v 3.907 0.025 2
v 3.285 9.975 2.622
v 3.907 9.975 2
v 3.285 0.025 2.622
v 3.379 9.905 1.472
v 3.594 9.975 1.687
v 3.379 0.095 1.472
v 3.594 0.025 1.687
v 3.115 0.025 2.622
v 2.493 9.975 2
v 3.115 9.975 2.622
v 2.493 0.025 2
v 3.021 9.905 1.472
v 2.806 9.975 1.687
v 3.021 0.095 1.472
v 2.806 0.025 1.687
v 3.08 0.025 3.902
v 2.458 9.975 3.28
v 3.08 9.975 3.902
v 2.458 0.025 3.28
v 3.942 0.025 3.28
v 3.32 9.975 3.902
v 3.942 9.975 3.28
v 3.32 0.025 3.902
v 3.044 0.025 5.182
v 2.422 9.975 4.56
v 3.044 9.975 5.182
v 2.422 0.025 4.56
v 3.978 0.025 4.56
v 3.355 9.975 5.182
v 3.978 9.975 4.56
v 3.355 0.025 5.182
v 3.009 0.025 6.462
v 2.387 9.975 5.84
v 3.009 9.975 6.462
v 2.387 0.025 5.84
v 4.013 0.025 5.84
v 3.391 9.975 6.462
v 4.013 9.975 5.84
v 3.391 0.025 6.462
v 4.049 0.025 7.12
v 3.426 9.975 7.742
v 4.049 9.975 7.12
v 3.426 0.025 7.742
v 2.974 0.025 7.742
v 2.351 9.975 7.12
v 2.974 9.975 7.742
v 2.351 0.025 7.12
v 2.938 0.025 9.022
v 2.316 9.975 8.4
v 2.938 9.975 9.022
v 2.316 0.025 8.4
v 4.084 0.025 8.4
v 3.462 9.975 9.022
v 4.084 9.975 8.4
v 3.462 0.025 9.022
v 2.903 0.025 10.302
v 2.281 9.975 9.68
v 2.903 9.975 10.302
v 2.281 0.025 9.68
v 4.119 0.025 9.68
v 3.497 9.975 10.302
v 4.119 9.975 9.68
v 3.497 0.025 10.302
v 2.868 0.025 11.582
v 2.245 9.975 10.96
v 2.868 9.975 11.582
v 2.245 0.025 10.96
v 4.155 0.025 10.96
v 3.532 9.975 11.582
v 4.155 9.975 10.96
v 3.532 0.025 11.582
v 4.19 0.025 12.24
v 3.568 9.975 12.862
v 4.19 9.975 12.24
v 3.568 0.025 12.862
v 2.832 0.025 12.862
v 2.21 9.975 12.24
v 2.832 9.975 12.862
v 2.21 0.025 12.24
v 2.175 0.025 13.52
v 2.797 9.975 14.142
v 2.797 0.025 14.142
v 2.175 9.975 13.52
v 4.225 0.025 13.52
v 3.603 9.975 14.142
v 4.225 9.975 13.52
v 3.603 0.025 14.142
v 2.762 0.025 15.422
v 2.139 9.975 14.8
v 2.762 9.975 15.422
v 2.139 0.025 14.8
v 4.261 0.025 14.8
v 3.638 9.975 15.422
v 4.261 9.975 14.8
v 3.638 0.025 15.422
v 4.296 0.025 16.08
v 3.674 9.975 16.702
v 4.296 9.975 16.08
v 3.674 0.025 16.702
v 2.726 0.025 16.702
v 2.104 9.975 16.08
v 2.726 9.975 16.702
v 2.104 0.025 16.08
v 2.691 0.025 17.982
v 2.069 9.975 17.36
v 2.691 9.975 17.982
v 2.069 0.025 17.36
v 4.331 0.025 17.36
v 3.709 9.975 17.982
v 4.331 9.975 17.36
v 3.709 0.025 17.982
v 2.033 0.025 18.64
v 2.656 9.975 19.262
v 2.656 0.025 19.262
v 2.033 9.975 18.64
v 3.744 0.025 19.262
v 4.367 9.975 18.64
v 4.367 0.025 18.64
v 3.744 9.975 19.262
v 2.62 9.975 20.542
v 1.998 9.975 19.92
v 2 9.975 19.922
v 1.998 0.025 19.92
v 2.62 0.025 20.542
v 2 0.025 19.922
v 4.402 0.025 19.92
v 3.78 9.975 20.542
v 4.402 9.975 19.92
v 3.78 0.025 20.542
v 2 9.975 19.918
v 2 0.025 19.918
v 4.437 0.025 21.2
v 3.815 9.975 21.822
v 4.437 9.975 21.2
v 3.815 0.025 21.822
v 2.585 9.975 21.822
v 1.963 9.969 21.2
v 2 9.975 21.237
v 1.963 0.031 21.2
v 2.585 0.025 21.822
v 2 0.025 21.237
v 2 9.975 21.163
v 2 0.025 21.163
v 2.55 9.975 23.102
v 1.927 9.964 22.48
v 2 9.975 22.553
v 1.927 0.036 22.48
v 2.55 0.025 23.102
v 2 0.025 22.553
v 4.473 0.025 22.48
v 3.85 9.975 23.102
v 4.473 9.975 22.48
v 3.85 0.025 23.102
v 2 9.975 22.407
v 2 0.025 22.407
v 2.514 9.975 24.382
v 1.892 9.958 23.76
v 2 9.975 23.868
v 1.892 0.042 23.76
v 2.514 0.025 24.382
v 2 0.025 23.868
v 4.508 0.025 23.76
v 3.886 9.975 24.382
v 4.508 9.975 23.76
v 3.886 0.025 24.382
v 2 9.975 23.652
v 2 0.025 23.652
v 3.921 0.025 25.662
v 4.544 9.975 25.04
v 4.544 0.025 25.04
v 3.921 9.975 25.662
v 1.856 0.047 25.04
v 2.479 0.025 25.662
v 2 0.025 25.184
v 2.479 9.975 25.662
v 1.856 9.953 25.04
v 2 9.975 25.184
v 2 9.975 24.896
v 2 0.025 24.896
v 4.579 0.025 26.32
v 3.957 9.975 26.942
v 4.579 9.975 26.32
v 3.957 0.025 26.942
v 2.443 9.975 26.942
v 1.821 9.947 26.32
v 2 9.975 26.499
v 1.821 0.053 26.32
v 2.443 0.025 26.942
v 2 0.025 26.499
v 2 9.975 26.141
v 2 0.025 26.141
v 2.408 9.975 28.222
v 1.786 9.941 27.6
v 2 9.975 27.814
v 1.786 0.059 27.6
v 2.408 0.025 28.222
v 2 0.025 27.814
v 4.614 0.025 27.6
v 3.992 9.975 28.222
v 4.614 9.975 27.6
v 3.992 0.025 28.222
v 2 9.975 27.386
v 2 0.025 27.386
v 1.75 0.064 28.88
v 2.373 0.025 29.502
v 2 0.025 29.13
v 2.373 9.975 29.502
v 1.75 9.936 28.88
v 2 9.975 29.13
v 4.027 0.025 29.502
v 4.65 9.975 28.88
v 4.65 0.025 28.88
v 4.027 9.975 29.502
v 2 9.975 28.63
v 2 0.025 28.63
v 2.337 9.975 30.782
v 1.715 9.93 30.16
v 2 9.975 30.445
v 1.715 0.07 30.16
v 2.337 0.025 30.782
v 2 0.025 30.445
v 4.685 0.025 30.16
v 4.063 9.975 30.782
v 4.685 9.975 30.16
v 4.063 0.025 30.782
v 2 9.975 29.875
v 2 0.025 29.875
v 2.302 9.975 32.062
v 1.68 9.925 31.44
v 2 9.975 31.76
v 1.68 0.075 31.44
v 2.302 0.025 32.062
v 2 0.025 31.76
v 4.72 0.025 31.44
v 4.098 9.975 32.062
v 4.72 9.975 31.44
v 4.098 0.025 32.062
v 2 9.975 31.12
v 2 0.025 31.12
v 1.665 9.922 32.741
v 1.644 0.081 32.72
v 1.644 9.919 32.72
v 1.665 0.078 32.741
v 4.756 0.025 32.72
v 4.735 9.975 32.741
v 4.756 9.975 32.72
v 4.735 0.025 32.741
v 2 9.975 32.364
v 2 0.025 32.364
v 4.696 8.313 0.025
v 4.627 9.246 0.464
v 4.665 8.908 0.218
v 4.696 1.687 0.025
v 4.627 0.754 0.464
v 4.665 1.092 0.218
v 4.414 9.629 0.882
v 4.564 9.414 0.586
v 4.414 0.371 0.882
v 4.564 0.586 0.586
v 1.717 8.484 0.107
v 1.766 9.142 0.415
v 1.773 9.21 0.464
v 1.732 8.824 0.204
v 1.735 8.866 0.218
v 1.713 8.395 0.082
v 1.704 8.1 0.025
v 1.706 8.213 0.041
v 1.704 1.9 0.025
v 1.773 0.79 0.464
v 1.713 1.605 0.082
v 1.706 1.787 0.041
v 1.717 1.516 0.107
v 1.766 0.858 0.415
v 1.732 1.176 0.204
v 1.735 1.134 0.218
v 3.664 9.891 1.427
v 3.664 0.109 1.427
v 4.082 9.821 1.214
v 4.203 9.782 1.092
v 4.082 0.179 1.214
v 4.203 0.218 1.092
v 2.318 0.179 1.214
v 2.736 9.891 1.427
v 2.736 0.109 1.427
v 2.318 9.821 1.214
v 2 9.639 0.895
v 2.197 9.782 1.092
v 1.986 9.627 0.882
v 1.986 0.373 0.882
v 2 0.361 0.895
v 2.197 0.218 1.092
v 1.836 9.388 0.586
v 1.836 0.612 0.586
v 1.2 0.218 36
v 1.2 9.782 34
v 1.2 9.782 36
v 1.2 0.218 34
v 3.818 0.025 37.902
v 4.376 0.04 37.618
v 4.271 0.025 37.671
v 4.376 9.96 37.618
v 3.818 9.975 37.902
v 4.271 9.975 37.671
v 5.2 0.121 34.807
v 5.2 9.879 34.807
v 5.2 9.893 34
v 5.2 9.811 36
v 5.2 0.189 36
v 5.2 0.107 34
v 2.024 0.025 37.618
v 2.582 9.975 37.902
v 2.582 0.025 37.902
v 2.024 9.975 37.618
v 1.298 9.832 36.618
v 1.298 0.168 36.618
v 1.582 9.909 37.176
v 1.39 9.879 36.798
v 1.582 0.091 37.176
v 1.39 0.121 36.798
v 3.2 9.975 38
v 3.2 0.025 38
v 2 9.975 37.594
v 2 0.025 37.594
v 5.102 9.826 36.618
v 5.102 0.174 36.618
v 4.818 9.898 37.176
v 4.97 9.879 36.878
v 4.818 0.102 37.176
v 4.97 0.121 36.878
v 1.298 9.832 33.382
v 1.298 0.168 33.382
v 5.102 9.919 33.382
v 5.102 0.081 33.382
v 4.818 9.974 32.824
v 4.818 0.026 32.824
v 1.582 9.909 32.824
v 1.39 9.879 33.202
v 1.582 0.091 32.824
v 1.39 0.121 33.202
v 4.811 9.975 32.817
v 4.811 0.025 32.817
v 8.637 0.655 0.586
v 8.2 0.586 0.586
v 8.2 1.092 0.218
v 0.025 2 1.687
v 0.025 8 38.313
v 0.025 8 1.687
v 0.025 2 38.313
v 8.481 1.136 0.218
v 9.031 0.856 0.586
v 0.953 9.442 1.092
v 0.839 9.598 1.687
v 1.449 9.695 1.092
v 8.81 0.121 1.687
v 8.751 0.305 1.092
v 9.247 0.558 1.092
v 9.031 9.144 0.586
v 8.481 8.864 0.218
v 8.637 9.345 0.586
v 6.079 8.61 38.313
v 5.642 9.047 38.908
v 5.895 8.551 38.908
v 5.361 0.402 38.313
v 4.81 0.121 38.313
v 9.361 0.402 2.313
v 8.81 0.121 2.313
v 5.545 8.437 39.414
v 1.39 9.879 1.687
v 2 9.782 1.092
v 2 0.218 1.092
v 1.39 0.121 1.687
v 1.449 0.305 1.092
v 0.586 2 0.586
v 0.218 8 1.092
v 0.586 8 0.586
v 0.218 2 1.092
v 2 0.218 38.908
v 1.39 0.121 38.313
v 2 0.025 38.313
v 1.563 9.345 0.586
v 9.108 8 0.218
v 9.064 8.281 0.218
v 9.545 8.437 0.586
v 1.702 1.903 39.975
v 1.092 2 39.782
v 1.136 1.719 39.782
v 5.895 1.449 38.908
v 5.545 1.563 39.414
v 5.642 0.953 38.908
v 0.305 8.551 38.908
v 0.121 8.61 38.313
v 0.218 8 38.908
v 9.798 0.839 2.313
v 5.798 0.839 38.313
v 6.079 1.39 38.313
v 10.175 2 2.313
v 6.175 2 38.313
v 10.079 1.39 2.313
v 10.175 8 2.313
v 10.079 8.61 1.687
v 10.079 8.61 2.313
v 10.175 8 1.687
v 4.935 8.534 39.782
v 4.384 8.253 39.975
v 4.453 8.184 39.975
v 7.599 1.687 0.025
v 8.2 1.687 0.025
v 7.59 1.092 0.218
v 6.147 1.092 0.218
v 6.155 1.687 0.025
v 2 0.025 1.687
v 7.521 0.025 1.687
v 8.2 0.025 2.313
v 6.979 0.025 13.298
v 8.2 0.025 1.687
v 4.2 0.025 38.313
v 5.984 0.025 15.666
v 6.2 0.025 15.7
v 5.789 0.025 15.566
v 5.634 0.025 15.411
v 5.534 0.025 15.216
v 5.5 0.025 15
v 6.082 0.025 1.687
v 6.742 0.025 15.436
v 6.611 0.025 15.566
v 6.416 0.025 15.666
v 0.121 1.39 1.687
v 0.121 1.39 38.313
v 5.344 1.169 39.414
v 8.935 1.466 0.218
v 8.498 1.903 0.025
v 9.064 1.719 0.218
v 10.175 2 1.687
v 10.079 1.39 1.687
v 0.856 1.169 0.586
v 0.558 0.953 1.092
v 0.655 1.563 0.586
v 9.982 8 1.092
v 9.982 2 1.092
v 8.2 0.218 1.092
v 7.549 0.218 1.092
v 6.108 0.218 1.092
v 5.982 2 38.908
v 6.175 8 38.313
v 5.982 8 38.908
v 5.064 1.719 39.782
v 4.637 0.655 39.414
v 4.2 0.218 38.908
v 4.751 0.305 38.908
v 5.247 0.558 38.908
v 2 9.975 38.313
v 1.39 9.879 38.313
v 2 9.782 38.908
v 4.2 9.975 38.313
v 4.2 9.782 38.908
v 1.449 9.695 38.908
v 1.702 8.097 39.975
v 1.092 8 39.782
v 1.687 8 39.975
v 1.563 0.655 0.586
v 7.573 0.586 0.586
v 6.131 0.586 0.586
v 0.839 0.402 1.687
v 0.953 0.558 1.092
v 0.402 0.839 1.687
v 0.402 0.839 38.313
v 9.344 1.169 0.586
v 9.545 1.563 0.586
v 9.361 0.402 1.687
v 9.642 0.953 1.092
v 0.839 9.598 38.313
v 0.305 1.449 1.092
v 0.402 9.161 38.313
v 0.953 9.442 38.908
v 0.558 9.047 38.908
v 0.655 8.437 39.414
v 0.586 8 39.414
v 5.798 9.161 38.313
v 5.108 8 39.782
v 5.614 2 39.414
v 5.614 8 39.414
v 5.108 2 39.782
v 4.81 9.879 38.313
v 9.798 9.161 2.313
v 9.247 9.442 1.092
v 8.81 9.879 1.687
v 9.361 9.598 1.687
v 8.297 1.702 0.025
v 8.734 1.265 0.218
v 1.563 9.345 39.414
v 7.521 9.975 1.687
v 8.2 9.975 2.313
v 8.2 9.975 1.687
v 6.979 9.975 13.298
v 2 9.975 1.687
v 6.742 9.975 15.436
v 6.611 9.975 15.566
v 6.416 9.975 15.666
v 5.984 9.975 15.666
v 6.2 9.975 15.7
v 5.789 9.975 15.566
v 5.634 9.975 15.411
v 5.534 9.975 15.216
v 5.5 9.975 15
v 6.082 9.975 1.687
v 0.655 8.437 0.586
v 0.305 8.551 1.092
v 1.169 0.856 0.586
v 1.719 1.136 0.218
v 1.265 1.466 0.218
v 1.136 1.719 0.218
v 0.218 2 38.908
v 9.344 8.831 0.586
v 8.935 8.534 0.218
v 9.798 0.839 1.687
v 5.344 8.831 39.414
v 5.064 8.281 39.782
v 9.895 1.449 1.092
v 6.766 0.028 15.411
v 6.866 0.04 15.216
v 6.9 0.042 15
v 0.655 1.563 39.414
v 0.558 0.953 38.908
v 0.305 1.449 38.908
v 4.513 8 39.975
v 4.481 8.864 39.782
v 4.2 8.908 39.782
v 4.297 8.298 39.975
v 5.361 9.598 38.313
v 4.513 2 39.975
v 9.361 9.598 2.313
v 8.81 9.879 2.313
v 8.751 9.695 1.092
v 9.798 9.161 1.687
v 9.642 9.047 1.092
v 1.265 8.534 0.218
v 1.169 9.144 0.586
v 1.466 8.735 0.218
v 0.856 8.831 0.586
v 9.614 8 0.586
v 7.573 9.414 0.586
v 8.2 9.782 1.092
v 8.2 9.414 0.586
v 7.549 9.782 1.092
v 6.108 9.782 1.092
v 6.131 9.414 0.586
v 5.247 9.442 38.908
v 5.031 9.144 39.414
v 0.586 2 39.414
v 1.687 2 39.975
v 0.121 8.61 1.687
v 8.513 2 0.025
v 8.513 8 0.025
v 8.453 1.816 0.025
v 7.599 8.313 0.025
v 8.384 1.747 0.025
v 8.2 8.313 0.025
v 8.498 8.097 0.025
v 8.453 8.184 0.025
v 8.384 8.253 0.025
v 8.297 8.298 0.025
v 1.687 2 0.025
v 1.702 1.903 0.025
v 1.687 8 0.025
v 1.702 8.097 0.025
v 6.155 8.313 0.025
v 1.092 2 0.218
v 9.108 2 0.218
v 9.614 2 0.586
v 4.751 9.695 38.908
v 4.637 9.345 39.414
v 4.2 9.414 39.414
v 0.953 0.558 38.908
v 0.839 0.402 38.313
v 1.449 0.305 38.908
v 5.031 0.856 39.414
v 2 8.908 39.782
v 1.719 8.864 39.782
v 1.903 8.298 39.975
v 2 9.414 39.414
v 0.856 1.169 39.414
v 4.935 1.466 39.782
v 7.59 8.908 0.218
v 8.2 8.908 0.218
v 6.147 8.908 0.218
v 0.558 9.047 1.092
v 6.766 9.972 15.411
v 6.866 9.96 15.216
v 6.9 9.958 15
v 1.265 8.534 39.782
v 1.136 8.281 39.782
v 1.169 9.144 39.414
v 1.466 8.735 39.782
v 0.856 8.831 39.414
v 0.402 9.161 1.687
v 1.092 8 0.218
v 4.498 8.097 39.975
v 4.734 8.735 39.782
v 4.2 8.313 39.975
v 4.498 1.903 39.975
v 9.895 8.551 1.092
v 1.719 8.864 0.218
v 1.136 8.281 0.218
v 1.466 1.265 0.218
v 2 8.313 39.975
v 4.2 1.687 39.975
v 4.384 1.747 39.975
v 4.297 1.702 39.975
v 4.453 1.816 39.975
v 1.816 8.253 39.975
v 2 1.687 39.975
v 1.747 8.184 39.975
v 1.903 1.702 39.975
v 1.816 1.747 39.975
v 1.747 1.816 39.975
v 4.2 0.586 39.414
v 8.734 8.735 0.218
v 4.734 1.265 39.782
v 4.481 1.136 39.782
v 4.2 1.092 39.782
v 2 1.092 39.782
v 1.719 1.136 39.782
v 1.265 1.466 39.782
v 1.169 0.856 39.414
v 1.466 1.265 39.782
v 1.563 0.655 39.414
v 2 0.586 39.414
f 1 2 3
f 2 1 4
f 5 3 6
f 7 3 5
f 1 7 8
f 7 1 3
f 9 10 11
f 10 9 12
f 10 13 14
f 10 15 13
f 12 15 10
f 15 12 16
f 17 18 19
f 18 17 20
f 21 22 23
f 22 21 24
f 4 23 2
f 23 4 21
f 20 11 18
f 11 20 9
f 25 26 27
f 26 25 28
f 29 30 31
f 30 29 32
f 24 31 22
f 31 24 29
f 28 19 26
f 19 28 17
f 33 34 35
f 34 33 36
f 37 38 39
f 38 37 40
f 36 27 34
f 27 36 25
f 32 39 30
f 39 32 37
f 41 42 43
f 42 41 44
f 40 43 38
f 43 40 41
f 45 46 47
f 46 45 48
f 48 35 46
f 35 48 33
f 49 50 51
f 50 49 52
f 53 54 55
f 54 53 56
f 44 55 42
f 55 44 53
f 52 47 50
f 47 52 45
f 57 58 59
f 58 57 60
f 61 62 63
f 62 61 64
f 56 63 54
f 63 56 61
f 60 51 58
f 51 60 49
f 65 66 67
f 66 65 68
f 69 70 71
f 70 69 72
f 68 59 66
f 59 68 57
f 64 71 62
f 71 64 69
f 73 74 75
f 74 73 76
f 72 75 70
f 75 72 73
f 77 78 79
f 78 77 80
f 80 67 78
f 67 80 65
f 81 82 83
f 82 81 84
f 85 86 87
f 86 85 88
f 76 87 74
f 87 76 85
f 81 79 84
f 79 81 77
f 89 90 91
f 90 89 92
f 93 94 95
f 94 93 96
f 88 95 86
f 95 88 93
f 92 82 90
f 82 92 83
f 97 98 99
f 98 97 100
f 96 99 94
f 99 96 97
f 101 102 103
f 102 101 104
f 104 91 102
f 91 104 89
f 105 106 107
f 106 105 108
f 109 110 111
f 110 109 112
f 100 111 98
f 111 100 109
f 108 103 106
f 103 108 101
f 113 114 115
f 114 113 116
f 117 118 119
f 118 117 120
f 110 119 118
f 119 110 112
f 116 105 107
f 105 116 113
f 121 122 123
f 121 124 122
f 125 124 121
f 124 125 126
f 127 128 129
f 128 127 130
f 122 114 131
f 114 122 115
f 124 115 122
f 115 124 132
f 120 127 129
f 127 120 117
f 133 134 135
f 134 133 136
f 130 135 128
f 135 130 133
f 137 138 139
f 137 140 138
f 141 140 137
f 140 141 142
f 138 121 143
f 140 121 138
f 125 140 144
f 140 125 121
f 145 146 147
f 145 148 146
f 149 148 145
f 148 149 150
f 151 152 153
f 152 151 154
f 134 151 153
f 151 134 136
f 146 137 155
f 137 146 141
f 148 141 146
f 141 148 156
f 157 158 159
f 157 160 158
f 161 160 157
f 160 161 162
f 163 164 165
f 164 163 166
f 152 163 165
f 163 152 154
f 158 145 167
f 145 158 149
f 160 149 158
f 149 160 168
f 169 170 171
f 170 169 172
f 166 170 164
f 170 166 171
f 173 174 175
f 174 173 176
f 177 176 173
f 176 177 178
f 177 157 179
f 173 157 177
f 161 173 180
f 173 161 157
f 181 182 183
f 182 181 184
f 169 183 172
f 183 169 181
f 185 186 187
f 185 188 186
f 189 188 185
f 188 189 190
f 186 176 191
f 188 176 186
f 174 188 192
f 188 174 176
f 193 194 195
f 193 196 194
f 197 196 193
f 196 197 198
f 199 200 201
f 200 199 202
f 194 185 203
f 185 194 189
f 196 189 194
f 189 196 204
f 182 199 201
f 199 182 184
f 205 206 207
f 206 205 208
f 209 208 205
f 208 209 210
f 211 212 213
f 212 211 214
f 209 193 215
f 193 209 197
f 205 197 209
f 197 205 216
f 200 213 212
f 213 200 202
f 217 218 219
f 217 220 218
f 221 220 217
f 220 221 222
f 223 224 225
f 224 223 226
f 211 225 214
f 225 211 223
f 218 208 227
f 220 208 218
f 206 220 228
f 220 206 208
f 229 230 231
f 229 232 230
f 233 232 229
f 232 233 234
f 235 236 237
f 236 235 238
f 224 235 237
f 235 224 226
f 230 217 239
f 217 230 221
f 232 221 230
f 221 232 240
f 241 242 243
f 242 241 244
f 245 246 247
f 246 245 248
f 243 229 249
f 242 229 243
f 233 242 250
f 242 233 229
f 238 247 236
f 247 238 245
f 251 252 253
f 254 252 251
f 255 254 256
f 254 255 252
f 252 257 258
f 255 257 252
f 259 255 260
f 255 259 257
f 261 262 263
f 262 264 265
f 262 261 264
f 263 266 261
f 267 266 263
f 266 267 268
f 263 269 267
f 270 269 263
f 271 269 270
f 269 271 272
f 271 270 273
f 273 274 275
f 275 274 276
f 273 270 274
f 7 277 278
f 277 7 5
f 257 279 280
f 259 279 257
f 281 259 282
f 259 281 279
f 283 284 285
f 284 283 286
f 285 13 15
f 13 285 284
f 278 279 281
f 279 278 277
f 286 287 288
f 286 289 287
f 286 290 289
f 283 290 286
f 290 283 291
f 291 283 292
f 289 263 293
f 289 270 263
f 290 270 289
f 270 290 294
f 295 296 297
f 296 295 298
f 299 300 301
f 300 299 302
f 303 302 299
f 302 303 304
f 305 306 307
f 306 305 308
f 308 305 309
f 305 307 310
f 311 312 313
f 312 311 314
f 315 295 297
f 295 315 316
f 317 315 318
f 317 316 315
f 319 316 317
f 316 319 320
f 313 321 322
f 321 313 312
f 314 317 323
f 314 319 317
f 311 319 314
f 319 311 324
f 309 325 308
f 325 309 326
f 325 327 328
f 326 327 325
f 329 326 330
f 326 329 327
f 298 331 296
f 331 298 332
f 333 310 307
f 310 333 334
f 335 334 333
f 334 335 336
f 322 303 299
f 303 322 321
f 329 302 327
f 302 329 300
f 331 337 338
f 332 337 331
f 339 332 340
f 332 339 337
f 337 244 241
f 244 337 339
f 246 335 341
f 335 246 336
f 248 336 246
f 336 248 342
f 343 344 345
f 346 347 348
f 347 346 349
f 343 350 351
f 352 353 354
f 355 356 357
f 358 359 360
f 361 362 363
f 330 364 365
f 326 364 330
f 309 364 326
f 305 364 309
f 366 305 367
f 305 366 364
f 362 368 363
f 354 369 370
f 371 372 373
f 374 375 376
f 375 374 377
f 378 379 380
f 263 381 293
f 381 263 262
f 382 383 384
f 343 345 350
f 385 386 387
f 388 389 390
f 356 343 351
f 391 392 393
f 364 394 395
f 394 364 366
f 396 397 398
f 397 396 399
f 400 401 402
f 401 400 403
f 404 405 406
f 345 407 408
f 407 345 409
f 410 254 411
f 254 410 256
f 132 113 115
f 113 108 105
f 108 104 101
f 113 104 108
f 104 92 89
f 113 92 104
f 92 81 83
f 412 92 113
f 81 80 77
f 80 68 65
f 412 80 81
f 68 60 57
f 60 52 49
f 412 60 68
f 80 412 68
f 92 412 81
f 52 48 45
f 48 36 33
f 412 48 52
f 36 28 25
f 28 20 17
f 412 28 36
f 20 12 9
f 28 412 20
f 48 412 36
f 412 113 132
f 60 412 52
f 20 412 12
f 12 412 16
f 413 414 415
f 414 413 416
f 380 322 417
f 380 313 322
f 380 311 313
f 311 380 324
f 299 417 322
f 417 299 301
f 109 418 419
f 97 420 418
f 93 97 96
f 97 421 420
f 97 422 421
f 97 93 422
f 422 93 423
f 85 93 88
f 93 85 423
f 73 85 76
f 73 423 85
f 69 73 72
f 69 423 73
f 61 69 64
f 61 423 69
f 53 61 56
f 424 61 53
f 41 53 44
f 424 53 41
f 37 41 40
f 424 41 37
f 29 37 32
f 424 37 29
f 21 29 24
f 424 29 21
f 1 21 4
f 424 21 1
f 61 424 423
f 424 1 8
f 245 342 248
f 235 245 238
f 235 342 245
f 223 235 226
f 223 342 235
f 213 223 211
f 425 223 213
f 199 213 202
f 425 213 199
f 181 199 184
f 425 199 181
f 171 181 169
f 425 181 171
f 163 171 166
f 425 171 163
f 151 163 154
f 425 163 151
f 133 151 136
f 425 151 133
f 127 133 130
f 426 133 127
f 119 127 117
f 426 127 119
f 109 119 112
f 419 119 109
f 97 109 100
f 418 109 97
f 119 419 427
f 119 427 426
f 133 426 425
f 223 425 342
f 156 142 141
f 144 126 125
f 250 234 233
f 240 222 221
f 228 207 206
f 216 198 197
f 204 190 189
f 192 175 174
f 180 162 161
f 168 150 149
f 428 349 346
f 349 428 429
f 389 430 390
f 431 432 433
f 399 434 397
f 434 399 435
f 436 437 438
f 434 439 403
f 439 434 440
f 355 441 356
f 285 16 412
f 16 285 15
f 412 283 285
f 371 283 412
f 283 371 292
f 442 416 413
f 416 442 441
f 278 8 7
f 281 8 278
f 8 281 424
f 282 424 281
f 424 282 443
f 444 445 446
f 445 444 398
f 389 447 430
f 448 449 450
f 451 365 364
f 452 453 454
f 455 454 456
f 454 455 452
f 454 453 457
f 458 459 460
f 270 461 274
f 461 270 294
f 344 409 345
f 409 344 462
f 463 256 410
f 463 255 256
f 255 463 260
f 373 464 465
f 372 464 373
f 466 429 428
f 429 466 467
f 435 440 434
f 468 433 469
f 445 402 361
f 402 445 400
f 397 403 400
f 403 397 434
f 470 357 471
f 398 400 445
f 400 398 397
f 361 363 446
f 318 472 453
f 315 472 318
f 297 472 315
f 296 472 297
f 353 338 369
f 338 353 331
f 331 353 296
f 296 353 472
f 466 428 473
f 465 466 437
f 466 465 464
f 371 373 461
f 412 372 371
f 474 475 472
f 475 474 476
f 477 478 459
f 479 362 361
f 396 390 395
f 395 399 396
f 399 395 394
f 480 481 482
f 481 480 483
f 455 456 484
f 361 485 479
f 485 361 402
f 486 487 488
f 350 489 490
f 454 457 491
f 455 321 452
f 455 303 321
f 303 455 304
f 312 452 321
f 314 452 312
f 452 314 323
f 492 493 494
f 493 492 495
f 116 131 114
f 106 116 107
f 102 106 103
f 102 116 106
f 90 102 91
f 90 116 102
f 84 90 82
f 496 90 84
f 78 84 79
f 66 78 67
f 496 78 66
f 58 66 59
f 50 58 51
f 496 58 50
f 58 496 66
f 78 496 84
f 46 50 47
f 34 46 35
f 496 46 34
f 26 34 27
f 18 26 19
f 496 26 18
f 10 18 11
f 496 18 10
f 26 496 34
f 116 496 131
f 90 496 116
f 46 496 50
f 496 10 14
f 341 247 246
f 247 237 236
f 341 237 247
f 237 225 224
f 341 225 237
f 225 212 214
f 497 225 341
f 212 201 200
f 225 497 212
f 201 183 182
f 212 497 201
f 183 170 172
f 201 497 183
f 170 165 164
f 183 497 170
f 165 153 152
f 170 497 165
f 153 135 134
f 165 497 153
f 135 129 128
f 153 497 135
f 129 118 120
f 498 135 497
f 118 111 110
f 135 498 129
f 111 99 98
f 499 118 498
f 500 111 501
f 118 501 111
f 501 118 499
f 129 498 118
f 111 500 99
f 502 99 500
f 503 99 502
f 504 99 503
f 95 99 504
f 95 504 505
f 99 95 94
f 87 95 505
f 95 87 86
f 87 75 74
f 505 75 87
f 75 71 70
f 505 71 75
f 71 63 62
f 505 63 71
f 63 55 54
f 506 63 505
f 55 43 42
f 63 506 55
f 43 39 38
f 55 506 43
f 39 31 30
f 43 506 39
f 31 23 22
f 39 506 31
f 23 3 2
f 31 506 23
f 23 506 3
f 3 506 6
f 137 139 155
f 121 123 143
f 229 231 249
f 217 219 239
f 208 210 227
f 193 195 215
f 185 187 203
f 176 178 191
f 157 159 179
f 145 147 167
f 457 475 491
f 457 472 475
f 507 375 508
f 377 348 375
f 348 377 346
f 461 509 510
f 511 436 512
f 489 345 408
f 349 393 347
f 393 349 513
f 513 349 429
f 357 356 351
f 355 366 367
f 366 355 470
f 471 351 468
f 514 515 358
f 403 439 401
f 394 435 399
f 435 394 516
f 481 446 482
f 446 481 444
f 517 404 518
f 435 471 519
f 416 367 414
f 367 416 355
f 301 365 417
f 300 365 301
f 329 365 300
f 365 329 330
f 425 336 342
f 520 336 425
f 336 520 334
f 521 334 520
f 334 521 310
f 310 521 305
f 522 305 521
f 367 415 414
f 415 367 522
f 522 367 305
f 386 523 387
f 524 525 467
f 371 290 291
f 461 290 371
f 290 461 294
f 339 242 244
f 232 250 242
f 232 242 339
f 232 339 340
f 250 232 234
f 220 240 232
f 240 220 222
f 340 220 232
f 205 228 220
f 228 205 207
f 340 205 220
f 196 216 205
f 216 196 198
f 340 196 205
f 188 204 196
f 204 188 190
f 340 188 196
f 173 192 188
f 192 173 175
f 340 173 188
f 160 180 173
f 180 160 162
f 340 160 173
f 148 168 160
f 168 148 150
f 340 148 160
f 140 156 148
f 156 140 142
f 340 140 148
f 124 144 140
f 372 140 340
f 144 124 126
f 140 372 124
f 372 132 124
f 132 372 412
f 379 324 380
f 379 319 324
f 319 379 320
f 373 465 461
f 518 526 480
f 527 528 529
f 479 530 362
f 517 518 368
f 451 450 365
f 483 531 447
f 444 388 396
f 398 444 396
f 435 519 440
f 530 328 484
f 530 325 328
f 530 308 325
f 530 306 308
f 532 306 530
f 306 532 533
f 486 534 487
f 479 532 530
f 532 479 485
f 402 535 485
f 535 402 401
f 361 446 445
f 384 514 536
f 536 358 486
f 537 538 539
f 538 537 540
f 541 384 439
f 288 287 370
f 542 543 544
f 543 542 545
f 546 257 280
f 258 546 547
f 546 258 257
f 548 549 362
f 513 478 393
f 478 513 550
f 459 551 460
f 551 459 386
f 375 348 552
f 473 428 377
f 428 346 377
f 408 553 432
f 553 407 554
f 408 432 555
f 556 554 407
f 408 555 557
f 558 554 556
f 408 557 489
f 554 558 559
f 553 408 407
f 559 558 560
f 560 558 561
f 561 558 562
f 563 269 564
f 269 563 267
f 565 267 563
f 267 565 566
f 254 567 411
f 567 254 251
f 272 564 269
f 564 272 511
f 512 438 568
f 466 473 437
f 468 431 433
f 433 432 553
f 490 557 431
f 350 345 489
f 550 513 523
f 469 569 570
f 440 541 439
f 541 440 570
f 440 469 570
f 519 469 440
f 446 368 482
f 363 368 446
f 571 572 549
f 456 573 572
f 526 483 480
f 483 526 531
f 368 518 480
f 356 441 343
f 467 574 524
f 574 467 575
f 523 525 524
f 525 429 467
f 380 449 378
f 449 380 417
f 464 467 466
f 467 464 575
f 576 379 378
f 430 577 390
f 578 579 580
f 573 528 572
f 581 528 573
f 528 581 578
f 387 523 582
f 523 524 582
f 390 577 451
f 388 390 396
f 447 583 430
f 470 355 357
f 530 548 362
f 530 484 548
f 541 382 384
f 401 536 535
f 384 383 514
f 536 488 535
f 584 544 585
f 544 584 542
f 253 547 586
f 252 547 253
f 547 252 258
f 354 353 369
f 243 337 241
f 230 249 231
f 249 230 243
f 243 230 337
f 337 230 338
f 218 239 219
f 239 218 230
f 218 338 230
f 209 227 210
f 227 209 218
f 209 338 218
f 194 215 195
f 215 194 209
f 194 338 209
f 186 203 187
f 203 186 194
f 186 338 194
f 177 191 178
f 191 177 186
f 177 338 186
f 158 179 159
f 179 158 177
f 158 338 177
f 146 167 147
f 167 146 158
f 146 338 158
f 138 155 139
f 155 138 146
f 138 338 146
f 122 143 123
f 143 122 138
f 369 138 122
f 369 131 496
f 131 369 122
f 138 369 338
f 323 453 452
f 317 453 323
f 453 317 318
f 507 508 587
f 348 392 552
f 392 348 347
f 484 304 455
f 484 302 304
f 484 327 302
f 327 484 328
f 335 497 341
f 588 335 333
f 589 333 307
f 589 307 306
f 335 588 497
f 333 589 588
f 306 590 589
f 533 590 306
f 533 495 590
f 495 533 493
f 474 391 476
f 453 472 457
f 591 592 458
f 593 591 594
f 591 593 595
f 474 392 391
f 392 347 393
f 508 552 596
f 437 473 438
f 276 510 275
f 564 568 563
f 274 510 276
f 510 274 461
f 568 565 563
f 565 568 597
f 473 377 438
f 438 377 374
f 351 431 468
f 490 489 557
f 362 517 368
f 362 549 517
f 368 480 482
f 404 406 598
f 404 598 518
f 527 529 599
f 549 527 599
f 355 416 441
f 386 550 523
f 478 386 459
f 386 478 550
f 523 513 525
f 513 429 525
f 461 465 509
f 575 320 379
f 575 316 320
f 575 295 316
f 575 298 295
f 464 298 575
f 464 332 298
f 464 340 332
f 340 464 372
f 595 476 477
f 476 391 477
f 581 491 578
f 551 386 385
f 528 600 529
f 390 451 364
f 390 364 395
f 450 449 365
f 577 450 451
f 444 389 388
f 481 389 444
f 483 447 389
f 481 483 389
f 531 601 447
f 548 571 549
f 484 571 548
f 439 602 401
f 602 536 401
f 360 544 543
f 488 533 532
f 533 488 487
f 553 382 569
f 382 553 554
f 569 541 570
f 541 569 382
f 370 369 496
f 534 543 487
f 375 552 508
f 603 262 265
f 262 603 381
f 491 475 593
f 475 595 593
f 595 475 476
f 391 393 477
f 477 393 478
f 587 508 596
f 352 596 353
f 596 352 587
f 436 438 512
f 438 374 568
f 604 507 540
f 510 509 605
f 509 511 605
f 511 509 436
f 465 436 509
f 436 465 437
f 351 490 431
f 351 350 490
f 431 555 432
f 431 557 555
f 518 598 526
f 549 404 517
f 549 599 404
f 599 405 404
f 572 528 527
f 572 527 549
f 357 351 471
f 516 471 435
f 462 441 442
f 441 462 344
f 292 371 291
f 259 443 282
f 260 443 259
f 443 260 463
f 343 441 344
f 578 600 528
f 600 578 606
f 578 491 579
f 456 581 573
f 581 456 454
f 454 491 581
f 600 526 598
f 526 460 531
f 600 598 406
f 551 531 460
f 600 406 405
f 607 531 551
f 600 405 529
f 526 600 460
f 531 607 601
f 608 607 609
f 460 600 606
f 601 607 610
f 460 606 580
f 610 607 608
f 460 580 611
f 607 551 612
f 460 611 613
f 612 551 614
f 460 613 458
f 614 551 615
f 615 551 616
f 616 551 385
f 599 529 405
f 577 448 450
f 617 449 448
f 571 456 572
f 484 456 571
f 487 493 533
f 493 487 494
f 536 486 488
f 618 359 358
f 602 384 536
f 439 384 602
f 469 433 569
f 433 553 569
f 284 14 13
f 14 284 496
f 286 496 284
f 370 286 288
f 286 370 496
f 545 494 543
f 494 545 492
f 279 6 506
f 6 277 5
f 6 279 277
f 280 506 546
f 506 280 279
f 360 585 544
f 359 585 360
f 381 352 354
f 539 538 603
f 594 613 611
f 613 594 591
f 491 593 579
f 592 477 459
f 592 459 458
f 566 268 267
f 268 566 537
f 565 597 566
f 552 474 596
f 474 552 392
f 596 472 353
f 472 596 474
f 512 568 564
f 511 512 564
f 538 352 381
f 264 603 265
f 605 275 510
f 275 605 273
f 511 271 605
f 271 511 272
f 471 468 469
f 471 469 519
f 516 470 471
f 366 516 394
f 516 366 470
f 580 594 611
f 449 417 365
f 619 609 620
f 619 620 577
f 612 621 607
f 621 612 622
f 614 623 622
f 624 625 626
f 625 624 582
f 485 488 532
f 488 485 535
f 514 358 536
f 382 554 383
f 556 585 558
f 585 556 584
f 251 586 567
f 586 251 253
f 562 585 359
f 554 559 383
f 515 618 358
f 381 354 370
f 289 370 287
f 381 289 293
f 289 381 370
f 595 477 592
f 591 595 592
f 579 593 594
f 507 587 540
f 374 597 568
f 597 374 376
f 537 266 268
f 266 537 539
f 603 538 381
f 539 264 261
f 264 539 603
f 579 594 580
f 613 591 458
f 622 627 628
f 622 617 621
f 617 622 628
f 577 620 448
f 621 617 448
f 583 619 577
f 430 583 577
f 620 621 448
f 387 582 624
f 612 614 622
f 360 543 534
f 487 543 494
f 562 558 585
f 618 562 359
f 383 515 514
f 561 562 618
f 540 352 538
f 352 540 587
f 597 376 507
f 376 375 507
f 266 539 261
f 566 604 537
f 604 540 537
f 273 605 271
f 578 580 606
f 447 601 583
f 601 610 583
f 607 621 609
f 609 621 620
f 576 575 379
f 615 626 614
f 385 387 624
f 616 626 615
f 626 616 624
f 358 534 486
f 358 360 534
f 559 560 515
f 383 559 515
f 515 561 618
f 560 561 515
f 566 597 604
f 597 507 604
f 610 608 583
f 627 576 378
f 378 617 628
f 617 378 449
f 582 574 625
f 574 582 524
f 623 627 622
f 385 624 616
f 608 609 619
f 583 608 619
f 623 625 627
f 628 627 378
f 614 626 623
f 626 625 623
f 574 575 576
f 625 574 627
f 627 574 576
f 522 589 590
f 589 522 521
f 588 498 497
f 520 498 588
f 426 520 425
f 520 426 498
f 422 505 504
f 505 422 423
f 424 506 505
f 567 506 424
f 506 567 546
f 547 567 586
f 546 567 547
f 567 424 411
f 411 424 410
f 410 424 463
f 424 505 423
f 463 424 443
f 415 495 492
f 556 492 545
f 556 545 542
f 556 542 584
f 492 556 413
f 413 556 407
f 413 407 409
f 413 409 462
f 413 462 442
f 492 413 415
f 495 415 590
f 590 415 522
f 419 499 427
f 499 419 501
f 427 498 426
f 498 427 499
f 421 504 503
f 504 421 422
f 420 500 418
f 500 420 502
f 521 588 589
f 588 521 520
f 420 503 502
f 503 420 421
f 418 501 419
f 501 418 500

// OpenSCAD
$fn = 20;
r = 2;
length = 10;
height = 40;
width = 6.2;
hook = 4;
hole = 2.5;

module block() {
	hull() {
		translate([r, r, r]) sphere(r);
		translate([r, length - r, r]) sphere(r);
		translate([r, length - r, height - r]) sphere(r);
		translate([r, r, height - r]) sphere(r);

		translate([width + hook - r, r, r]) sphere(r);
		translate([width + hook - r, length - r, r]) sphere(r);
		translate([width - r, length - r, height - r]) sphere(r);
		translate([width - r, r, height - r]) sphere(r);
	}
}

module tooth(i) {
	size = hole * (20 + i)/50;
	rotate([0, 45, 0]) cube([size, length + 0.02, size], center=true);
}

module saw() {
	numPieces = 25;
	for (i = [0:numPieces]) {
		translate([0, length/2, 2 + i * (height-8)/numPieces]) tooth(i);
	}
	translate([0, length/2, 0]) rotate([90, 0, 0]) cylinder(r=1.5, h=length+0.02, center=true);
	translate([0, length/2, 34]) rotate([90, 0, 0]) hull() {
		cylinder(r=2, h=length+0.02, center=true);
		translate([0, 2, 0]) cylinder(r=2, h=length+0.02, center=true);
	}
}

module ridge() {
	hull() {
		translate([0, length+0.01, 15]) rotate([90, 0, 0]) cylinder(r=0.7, length + 0.02);
		translate([0, -0.01, -1]) cube([2*0.7, length+0.02, 1]);
	}
}

difference() {
	block();
	translate([3.2, 0, 0]) saw();
	translate([6.2, 0, 0]) ridge();
}
